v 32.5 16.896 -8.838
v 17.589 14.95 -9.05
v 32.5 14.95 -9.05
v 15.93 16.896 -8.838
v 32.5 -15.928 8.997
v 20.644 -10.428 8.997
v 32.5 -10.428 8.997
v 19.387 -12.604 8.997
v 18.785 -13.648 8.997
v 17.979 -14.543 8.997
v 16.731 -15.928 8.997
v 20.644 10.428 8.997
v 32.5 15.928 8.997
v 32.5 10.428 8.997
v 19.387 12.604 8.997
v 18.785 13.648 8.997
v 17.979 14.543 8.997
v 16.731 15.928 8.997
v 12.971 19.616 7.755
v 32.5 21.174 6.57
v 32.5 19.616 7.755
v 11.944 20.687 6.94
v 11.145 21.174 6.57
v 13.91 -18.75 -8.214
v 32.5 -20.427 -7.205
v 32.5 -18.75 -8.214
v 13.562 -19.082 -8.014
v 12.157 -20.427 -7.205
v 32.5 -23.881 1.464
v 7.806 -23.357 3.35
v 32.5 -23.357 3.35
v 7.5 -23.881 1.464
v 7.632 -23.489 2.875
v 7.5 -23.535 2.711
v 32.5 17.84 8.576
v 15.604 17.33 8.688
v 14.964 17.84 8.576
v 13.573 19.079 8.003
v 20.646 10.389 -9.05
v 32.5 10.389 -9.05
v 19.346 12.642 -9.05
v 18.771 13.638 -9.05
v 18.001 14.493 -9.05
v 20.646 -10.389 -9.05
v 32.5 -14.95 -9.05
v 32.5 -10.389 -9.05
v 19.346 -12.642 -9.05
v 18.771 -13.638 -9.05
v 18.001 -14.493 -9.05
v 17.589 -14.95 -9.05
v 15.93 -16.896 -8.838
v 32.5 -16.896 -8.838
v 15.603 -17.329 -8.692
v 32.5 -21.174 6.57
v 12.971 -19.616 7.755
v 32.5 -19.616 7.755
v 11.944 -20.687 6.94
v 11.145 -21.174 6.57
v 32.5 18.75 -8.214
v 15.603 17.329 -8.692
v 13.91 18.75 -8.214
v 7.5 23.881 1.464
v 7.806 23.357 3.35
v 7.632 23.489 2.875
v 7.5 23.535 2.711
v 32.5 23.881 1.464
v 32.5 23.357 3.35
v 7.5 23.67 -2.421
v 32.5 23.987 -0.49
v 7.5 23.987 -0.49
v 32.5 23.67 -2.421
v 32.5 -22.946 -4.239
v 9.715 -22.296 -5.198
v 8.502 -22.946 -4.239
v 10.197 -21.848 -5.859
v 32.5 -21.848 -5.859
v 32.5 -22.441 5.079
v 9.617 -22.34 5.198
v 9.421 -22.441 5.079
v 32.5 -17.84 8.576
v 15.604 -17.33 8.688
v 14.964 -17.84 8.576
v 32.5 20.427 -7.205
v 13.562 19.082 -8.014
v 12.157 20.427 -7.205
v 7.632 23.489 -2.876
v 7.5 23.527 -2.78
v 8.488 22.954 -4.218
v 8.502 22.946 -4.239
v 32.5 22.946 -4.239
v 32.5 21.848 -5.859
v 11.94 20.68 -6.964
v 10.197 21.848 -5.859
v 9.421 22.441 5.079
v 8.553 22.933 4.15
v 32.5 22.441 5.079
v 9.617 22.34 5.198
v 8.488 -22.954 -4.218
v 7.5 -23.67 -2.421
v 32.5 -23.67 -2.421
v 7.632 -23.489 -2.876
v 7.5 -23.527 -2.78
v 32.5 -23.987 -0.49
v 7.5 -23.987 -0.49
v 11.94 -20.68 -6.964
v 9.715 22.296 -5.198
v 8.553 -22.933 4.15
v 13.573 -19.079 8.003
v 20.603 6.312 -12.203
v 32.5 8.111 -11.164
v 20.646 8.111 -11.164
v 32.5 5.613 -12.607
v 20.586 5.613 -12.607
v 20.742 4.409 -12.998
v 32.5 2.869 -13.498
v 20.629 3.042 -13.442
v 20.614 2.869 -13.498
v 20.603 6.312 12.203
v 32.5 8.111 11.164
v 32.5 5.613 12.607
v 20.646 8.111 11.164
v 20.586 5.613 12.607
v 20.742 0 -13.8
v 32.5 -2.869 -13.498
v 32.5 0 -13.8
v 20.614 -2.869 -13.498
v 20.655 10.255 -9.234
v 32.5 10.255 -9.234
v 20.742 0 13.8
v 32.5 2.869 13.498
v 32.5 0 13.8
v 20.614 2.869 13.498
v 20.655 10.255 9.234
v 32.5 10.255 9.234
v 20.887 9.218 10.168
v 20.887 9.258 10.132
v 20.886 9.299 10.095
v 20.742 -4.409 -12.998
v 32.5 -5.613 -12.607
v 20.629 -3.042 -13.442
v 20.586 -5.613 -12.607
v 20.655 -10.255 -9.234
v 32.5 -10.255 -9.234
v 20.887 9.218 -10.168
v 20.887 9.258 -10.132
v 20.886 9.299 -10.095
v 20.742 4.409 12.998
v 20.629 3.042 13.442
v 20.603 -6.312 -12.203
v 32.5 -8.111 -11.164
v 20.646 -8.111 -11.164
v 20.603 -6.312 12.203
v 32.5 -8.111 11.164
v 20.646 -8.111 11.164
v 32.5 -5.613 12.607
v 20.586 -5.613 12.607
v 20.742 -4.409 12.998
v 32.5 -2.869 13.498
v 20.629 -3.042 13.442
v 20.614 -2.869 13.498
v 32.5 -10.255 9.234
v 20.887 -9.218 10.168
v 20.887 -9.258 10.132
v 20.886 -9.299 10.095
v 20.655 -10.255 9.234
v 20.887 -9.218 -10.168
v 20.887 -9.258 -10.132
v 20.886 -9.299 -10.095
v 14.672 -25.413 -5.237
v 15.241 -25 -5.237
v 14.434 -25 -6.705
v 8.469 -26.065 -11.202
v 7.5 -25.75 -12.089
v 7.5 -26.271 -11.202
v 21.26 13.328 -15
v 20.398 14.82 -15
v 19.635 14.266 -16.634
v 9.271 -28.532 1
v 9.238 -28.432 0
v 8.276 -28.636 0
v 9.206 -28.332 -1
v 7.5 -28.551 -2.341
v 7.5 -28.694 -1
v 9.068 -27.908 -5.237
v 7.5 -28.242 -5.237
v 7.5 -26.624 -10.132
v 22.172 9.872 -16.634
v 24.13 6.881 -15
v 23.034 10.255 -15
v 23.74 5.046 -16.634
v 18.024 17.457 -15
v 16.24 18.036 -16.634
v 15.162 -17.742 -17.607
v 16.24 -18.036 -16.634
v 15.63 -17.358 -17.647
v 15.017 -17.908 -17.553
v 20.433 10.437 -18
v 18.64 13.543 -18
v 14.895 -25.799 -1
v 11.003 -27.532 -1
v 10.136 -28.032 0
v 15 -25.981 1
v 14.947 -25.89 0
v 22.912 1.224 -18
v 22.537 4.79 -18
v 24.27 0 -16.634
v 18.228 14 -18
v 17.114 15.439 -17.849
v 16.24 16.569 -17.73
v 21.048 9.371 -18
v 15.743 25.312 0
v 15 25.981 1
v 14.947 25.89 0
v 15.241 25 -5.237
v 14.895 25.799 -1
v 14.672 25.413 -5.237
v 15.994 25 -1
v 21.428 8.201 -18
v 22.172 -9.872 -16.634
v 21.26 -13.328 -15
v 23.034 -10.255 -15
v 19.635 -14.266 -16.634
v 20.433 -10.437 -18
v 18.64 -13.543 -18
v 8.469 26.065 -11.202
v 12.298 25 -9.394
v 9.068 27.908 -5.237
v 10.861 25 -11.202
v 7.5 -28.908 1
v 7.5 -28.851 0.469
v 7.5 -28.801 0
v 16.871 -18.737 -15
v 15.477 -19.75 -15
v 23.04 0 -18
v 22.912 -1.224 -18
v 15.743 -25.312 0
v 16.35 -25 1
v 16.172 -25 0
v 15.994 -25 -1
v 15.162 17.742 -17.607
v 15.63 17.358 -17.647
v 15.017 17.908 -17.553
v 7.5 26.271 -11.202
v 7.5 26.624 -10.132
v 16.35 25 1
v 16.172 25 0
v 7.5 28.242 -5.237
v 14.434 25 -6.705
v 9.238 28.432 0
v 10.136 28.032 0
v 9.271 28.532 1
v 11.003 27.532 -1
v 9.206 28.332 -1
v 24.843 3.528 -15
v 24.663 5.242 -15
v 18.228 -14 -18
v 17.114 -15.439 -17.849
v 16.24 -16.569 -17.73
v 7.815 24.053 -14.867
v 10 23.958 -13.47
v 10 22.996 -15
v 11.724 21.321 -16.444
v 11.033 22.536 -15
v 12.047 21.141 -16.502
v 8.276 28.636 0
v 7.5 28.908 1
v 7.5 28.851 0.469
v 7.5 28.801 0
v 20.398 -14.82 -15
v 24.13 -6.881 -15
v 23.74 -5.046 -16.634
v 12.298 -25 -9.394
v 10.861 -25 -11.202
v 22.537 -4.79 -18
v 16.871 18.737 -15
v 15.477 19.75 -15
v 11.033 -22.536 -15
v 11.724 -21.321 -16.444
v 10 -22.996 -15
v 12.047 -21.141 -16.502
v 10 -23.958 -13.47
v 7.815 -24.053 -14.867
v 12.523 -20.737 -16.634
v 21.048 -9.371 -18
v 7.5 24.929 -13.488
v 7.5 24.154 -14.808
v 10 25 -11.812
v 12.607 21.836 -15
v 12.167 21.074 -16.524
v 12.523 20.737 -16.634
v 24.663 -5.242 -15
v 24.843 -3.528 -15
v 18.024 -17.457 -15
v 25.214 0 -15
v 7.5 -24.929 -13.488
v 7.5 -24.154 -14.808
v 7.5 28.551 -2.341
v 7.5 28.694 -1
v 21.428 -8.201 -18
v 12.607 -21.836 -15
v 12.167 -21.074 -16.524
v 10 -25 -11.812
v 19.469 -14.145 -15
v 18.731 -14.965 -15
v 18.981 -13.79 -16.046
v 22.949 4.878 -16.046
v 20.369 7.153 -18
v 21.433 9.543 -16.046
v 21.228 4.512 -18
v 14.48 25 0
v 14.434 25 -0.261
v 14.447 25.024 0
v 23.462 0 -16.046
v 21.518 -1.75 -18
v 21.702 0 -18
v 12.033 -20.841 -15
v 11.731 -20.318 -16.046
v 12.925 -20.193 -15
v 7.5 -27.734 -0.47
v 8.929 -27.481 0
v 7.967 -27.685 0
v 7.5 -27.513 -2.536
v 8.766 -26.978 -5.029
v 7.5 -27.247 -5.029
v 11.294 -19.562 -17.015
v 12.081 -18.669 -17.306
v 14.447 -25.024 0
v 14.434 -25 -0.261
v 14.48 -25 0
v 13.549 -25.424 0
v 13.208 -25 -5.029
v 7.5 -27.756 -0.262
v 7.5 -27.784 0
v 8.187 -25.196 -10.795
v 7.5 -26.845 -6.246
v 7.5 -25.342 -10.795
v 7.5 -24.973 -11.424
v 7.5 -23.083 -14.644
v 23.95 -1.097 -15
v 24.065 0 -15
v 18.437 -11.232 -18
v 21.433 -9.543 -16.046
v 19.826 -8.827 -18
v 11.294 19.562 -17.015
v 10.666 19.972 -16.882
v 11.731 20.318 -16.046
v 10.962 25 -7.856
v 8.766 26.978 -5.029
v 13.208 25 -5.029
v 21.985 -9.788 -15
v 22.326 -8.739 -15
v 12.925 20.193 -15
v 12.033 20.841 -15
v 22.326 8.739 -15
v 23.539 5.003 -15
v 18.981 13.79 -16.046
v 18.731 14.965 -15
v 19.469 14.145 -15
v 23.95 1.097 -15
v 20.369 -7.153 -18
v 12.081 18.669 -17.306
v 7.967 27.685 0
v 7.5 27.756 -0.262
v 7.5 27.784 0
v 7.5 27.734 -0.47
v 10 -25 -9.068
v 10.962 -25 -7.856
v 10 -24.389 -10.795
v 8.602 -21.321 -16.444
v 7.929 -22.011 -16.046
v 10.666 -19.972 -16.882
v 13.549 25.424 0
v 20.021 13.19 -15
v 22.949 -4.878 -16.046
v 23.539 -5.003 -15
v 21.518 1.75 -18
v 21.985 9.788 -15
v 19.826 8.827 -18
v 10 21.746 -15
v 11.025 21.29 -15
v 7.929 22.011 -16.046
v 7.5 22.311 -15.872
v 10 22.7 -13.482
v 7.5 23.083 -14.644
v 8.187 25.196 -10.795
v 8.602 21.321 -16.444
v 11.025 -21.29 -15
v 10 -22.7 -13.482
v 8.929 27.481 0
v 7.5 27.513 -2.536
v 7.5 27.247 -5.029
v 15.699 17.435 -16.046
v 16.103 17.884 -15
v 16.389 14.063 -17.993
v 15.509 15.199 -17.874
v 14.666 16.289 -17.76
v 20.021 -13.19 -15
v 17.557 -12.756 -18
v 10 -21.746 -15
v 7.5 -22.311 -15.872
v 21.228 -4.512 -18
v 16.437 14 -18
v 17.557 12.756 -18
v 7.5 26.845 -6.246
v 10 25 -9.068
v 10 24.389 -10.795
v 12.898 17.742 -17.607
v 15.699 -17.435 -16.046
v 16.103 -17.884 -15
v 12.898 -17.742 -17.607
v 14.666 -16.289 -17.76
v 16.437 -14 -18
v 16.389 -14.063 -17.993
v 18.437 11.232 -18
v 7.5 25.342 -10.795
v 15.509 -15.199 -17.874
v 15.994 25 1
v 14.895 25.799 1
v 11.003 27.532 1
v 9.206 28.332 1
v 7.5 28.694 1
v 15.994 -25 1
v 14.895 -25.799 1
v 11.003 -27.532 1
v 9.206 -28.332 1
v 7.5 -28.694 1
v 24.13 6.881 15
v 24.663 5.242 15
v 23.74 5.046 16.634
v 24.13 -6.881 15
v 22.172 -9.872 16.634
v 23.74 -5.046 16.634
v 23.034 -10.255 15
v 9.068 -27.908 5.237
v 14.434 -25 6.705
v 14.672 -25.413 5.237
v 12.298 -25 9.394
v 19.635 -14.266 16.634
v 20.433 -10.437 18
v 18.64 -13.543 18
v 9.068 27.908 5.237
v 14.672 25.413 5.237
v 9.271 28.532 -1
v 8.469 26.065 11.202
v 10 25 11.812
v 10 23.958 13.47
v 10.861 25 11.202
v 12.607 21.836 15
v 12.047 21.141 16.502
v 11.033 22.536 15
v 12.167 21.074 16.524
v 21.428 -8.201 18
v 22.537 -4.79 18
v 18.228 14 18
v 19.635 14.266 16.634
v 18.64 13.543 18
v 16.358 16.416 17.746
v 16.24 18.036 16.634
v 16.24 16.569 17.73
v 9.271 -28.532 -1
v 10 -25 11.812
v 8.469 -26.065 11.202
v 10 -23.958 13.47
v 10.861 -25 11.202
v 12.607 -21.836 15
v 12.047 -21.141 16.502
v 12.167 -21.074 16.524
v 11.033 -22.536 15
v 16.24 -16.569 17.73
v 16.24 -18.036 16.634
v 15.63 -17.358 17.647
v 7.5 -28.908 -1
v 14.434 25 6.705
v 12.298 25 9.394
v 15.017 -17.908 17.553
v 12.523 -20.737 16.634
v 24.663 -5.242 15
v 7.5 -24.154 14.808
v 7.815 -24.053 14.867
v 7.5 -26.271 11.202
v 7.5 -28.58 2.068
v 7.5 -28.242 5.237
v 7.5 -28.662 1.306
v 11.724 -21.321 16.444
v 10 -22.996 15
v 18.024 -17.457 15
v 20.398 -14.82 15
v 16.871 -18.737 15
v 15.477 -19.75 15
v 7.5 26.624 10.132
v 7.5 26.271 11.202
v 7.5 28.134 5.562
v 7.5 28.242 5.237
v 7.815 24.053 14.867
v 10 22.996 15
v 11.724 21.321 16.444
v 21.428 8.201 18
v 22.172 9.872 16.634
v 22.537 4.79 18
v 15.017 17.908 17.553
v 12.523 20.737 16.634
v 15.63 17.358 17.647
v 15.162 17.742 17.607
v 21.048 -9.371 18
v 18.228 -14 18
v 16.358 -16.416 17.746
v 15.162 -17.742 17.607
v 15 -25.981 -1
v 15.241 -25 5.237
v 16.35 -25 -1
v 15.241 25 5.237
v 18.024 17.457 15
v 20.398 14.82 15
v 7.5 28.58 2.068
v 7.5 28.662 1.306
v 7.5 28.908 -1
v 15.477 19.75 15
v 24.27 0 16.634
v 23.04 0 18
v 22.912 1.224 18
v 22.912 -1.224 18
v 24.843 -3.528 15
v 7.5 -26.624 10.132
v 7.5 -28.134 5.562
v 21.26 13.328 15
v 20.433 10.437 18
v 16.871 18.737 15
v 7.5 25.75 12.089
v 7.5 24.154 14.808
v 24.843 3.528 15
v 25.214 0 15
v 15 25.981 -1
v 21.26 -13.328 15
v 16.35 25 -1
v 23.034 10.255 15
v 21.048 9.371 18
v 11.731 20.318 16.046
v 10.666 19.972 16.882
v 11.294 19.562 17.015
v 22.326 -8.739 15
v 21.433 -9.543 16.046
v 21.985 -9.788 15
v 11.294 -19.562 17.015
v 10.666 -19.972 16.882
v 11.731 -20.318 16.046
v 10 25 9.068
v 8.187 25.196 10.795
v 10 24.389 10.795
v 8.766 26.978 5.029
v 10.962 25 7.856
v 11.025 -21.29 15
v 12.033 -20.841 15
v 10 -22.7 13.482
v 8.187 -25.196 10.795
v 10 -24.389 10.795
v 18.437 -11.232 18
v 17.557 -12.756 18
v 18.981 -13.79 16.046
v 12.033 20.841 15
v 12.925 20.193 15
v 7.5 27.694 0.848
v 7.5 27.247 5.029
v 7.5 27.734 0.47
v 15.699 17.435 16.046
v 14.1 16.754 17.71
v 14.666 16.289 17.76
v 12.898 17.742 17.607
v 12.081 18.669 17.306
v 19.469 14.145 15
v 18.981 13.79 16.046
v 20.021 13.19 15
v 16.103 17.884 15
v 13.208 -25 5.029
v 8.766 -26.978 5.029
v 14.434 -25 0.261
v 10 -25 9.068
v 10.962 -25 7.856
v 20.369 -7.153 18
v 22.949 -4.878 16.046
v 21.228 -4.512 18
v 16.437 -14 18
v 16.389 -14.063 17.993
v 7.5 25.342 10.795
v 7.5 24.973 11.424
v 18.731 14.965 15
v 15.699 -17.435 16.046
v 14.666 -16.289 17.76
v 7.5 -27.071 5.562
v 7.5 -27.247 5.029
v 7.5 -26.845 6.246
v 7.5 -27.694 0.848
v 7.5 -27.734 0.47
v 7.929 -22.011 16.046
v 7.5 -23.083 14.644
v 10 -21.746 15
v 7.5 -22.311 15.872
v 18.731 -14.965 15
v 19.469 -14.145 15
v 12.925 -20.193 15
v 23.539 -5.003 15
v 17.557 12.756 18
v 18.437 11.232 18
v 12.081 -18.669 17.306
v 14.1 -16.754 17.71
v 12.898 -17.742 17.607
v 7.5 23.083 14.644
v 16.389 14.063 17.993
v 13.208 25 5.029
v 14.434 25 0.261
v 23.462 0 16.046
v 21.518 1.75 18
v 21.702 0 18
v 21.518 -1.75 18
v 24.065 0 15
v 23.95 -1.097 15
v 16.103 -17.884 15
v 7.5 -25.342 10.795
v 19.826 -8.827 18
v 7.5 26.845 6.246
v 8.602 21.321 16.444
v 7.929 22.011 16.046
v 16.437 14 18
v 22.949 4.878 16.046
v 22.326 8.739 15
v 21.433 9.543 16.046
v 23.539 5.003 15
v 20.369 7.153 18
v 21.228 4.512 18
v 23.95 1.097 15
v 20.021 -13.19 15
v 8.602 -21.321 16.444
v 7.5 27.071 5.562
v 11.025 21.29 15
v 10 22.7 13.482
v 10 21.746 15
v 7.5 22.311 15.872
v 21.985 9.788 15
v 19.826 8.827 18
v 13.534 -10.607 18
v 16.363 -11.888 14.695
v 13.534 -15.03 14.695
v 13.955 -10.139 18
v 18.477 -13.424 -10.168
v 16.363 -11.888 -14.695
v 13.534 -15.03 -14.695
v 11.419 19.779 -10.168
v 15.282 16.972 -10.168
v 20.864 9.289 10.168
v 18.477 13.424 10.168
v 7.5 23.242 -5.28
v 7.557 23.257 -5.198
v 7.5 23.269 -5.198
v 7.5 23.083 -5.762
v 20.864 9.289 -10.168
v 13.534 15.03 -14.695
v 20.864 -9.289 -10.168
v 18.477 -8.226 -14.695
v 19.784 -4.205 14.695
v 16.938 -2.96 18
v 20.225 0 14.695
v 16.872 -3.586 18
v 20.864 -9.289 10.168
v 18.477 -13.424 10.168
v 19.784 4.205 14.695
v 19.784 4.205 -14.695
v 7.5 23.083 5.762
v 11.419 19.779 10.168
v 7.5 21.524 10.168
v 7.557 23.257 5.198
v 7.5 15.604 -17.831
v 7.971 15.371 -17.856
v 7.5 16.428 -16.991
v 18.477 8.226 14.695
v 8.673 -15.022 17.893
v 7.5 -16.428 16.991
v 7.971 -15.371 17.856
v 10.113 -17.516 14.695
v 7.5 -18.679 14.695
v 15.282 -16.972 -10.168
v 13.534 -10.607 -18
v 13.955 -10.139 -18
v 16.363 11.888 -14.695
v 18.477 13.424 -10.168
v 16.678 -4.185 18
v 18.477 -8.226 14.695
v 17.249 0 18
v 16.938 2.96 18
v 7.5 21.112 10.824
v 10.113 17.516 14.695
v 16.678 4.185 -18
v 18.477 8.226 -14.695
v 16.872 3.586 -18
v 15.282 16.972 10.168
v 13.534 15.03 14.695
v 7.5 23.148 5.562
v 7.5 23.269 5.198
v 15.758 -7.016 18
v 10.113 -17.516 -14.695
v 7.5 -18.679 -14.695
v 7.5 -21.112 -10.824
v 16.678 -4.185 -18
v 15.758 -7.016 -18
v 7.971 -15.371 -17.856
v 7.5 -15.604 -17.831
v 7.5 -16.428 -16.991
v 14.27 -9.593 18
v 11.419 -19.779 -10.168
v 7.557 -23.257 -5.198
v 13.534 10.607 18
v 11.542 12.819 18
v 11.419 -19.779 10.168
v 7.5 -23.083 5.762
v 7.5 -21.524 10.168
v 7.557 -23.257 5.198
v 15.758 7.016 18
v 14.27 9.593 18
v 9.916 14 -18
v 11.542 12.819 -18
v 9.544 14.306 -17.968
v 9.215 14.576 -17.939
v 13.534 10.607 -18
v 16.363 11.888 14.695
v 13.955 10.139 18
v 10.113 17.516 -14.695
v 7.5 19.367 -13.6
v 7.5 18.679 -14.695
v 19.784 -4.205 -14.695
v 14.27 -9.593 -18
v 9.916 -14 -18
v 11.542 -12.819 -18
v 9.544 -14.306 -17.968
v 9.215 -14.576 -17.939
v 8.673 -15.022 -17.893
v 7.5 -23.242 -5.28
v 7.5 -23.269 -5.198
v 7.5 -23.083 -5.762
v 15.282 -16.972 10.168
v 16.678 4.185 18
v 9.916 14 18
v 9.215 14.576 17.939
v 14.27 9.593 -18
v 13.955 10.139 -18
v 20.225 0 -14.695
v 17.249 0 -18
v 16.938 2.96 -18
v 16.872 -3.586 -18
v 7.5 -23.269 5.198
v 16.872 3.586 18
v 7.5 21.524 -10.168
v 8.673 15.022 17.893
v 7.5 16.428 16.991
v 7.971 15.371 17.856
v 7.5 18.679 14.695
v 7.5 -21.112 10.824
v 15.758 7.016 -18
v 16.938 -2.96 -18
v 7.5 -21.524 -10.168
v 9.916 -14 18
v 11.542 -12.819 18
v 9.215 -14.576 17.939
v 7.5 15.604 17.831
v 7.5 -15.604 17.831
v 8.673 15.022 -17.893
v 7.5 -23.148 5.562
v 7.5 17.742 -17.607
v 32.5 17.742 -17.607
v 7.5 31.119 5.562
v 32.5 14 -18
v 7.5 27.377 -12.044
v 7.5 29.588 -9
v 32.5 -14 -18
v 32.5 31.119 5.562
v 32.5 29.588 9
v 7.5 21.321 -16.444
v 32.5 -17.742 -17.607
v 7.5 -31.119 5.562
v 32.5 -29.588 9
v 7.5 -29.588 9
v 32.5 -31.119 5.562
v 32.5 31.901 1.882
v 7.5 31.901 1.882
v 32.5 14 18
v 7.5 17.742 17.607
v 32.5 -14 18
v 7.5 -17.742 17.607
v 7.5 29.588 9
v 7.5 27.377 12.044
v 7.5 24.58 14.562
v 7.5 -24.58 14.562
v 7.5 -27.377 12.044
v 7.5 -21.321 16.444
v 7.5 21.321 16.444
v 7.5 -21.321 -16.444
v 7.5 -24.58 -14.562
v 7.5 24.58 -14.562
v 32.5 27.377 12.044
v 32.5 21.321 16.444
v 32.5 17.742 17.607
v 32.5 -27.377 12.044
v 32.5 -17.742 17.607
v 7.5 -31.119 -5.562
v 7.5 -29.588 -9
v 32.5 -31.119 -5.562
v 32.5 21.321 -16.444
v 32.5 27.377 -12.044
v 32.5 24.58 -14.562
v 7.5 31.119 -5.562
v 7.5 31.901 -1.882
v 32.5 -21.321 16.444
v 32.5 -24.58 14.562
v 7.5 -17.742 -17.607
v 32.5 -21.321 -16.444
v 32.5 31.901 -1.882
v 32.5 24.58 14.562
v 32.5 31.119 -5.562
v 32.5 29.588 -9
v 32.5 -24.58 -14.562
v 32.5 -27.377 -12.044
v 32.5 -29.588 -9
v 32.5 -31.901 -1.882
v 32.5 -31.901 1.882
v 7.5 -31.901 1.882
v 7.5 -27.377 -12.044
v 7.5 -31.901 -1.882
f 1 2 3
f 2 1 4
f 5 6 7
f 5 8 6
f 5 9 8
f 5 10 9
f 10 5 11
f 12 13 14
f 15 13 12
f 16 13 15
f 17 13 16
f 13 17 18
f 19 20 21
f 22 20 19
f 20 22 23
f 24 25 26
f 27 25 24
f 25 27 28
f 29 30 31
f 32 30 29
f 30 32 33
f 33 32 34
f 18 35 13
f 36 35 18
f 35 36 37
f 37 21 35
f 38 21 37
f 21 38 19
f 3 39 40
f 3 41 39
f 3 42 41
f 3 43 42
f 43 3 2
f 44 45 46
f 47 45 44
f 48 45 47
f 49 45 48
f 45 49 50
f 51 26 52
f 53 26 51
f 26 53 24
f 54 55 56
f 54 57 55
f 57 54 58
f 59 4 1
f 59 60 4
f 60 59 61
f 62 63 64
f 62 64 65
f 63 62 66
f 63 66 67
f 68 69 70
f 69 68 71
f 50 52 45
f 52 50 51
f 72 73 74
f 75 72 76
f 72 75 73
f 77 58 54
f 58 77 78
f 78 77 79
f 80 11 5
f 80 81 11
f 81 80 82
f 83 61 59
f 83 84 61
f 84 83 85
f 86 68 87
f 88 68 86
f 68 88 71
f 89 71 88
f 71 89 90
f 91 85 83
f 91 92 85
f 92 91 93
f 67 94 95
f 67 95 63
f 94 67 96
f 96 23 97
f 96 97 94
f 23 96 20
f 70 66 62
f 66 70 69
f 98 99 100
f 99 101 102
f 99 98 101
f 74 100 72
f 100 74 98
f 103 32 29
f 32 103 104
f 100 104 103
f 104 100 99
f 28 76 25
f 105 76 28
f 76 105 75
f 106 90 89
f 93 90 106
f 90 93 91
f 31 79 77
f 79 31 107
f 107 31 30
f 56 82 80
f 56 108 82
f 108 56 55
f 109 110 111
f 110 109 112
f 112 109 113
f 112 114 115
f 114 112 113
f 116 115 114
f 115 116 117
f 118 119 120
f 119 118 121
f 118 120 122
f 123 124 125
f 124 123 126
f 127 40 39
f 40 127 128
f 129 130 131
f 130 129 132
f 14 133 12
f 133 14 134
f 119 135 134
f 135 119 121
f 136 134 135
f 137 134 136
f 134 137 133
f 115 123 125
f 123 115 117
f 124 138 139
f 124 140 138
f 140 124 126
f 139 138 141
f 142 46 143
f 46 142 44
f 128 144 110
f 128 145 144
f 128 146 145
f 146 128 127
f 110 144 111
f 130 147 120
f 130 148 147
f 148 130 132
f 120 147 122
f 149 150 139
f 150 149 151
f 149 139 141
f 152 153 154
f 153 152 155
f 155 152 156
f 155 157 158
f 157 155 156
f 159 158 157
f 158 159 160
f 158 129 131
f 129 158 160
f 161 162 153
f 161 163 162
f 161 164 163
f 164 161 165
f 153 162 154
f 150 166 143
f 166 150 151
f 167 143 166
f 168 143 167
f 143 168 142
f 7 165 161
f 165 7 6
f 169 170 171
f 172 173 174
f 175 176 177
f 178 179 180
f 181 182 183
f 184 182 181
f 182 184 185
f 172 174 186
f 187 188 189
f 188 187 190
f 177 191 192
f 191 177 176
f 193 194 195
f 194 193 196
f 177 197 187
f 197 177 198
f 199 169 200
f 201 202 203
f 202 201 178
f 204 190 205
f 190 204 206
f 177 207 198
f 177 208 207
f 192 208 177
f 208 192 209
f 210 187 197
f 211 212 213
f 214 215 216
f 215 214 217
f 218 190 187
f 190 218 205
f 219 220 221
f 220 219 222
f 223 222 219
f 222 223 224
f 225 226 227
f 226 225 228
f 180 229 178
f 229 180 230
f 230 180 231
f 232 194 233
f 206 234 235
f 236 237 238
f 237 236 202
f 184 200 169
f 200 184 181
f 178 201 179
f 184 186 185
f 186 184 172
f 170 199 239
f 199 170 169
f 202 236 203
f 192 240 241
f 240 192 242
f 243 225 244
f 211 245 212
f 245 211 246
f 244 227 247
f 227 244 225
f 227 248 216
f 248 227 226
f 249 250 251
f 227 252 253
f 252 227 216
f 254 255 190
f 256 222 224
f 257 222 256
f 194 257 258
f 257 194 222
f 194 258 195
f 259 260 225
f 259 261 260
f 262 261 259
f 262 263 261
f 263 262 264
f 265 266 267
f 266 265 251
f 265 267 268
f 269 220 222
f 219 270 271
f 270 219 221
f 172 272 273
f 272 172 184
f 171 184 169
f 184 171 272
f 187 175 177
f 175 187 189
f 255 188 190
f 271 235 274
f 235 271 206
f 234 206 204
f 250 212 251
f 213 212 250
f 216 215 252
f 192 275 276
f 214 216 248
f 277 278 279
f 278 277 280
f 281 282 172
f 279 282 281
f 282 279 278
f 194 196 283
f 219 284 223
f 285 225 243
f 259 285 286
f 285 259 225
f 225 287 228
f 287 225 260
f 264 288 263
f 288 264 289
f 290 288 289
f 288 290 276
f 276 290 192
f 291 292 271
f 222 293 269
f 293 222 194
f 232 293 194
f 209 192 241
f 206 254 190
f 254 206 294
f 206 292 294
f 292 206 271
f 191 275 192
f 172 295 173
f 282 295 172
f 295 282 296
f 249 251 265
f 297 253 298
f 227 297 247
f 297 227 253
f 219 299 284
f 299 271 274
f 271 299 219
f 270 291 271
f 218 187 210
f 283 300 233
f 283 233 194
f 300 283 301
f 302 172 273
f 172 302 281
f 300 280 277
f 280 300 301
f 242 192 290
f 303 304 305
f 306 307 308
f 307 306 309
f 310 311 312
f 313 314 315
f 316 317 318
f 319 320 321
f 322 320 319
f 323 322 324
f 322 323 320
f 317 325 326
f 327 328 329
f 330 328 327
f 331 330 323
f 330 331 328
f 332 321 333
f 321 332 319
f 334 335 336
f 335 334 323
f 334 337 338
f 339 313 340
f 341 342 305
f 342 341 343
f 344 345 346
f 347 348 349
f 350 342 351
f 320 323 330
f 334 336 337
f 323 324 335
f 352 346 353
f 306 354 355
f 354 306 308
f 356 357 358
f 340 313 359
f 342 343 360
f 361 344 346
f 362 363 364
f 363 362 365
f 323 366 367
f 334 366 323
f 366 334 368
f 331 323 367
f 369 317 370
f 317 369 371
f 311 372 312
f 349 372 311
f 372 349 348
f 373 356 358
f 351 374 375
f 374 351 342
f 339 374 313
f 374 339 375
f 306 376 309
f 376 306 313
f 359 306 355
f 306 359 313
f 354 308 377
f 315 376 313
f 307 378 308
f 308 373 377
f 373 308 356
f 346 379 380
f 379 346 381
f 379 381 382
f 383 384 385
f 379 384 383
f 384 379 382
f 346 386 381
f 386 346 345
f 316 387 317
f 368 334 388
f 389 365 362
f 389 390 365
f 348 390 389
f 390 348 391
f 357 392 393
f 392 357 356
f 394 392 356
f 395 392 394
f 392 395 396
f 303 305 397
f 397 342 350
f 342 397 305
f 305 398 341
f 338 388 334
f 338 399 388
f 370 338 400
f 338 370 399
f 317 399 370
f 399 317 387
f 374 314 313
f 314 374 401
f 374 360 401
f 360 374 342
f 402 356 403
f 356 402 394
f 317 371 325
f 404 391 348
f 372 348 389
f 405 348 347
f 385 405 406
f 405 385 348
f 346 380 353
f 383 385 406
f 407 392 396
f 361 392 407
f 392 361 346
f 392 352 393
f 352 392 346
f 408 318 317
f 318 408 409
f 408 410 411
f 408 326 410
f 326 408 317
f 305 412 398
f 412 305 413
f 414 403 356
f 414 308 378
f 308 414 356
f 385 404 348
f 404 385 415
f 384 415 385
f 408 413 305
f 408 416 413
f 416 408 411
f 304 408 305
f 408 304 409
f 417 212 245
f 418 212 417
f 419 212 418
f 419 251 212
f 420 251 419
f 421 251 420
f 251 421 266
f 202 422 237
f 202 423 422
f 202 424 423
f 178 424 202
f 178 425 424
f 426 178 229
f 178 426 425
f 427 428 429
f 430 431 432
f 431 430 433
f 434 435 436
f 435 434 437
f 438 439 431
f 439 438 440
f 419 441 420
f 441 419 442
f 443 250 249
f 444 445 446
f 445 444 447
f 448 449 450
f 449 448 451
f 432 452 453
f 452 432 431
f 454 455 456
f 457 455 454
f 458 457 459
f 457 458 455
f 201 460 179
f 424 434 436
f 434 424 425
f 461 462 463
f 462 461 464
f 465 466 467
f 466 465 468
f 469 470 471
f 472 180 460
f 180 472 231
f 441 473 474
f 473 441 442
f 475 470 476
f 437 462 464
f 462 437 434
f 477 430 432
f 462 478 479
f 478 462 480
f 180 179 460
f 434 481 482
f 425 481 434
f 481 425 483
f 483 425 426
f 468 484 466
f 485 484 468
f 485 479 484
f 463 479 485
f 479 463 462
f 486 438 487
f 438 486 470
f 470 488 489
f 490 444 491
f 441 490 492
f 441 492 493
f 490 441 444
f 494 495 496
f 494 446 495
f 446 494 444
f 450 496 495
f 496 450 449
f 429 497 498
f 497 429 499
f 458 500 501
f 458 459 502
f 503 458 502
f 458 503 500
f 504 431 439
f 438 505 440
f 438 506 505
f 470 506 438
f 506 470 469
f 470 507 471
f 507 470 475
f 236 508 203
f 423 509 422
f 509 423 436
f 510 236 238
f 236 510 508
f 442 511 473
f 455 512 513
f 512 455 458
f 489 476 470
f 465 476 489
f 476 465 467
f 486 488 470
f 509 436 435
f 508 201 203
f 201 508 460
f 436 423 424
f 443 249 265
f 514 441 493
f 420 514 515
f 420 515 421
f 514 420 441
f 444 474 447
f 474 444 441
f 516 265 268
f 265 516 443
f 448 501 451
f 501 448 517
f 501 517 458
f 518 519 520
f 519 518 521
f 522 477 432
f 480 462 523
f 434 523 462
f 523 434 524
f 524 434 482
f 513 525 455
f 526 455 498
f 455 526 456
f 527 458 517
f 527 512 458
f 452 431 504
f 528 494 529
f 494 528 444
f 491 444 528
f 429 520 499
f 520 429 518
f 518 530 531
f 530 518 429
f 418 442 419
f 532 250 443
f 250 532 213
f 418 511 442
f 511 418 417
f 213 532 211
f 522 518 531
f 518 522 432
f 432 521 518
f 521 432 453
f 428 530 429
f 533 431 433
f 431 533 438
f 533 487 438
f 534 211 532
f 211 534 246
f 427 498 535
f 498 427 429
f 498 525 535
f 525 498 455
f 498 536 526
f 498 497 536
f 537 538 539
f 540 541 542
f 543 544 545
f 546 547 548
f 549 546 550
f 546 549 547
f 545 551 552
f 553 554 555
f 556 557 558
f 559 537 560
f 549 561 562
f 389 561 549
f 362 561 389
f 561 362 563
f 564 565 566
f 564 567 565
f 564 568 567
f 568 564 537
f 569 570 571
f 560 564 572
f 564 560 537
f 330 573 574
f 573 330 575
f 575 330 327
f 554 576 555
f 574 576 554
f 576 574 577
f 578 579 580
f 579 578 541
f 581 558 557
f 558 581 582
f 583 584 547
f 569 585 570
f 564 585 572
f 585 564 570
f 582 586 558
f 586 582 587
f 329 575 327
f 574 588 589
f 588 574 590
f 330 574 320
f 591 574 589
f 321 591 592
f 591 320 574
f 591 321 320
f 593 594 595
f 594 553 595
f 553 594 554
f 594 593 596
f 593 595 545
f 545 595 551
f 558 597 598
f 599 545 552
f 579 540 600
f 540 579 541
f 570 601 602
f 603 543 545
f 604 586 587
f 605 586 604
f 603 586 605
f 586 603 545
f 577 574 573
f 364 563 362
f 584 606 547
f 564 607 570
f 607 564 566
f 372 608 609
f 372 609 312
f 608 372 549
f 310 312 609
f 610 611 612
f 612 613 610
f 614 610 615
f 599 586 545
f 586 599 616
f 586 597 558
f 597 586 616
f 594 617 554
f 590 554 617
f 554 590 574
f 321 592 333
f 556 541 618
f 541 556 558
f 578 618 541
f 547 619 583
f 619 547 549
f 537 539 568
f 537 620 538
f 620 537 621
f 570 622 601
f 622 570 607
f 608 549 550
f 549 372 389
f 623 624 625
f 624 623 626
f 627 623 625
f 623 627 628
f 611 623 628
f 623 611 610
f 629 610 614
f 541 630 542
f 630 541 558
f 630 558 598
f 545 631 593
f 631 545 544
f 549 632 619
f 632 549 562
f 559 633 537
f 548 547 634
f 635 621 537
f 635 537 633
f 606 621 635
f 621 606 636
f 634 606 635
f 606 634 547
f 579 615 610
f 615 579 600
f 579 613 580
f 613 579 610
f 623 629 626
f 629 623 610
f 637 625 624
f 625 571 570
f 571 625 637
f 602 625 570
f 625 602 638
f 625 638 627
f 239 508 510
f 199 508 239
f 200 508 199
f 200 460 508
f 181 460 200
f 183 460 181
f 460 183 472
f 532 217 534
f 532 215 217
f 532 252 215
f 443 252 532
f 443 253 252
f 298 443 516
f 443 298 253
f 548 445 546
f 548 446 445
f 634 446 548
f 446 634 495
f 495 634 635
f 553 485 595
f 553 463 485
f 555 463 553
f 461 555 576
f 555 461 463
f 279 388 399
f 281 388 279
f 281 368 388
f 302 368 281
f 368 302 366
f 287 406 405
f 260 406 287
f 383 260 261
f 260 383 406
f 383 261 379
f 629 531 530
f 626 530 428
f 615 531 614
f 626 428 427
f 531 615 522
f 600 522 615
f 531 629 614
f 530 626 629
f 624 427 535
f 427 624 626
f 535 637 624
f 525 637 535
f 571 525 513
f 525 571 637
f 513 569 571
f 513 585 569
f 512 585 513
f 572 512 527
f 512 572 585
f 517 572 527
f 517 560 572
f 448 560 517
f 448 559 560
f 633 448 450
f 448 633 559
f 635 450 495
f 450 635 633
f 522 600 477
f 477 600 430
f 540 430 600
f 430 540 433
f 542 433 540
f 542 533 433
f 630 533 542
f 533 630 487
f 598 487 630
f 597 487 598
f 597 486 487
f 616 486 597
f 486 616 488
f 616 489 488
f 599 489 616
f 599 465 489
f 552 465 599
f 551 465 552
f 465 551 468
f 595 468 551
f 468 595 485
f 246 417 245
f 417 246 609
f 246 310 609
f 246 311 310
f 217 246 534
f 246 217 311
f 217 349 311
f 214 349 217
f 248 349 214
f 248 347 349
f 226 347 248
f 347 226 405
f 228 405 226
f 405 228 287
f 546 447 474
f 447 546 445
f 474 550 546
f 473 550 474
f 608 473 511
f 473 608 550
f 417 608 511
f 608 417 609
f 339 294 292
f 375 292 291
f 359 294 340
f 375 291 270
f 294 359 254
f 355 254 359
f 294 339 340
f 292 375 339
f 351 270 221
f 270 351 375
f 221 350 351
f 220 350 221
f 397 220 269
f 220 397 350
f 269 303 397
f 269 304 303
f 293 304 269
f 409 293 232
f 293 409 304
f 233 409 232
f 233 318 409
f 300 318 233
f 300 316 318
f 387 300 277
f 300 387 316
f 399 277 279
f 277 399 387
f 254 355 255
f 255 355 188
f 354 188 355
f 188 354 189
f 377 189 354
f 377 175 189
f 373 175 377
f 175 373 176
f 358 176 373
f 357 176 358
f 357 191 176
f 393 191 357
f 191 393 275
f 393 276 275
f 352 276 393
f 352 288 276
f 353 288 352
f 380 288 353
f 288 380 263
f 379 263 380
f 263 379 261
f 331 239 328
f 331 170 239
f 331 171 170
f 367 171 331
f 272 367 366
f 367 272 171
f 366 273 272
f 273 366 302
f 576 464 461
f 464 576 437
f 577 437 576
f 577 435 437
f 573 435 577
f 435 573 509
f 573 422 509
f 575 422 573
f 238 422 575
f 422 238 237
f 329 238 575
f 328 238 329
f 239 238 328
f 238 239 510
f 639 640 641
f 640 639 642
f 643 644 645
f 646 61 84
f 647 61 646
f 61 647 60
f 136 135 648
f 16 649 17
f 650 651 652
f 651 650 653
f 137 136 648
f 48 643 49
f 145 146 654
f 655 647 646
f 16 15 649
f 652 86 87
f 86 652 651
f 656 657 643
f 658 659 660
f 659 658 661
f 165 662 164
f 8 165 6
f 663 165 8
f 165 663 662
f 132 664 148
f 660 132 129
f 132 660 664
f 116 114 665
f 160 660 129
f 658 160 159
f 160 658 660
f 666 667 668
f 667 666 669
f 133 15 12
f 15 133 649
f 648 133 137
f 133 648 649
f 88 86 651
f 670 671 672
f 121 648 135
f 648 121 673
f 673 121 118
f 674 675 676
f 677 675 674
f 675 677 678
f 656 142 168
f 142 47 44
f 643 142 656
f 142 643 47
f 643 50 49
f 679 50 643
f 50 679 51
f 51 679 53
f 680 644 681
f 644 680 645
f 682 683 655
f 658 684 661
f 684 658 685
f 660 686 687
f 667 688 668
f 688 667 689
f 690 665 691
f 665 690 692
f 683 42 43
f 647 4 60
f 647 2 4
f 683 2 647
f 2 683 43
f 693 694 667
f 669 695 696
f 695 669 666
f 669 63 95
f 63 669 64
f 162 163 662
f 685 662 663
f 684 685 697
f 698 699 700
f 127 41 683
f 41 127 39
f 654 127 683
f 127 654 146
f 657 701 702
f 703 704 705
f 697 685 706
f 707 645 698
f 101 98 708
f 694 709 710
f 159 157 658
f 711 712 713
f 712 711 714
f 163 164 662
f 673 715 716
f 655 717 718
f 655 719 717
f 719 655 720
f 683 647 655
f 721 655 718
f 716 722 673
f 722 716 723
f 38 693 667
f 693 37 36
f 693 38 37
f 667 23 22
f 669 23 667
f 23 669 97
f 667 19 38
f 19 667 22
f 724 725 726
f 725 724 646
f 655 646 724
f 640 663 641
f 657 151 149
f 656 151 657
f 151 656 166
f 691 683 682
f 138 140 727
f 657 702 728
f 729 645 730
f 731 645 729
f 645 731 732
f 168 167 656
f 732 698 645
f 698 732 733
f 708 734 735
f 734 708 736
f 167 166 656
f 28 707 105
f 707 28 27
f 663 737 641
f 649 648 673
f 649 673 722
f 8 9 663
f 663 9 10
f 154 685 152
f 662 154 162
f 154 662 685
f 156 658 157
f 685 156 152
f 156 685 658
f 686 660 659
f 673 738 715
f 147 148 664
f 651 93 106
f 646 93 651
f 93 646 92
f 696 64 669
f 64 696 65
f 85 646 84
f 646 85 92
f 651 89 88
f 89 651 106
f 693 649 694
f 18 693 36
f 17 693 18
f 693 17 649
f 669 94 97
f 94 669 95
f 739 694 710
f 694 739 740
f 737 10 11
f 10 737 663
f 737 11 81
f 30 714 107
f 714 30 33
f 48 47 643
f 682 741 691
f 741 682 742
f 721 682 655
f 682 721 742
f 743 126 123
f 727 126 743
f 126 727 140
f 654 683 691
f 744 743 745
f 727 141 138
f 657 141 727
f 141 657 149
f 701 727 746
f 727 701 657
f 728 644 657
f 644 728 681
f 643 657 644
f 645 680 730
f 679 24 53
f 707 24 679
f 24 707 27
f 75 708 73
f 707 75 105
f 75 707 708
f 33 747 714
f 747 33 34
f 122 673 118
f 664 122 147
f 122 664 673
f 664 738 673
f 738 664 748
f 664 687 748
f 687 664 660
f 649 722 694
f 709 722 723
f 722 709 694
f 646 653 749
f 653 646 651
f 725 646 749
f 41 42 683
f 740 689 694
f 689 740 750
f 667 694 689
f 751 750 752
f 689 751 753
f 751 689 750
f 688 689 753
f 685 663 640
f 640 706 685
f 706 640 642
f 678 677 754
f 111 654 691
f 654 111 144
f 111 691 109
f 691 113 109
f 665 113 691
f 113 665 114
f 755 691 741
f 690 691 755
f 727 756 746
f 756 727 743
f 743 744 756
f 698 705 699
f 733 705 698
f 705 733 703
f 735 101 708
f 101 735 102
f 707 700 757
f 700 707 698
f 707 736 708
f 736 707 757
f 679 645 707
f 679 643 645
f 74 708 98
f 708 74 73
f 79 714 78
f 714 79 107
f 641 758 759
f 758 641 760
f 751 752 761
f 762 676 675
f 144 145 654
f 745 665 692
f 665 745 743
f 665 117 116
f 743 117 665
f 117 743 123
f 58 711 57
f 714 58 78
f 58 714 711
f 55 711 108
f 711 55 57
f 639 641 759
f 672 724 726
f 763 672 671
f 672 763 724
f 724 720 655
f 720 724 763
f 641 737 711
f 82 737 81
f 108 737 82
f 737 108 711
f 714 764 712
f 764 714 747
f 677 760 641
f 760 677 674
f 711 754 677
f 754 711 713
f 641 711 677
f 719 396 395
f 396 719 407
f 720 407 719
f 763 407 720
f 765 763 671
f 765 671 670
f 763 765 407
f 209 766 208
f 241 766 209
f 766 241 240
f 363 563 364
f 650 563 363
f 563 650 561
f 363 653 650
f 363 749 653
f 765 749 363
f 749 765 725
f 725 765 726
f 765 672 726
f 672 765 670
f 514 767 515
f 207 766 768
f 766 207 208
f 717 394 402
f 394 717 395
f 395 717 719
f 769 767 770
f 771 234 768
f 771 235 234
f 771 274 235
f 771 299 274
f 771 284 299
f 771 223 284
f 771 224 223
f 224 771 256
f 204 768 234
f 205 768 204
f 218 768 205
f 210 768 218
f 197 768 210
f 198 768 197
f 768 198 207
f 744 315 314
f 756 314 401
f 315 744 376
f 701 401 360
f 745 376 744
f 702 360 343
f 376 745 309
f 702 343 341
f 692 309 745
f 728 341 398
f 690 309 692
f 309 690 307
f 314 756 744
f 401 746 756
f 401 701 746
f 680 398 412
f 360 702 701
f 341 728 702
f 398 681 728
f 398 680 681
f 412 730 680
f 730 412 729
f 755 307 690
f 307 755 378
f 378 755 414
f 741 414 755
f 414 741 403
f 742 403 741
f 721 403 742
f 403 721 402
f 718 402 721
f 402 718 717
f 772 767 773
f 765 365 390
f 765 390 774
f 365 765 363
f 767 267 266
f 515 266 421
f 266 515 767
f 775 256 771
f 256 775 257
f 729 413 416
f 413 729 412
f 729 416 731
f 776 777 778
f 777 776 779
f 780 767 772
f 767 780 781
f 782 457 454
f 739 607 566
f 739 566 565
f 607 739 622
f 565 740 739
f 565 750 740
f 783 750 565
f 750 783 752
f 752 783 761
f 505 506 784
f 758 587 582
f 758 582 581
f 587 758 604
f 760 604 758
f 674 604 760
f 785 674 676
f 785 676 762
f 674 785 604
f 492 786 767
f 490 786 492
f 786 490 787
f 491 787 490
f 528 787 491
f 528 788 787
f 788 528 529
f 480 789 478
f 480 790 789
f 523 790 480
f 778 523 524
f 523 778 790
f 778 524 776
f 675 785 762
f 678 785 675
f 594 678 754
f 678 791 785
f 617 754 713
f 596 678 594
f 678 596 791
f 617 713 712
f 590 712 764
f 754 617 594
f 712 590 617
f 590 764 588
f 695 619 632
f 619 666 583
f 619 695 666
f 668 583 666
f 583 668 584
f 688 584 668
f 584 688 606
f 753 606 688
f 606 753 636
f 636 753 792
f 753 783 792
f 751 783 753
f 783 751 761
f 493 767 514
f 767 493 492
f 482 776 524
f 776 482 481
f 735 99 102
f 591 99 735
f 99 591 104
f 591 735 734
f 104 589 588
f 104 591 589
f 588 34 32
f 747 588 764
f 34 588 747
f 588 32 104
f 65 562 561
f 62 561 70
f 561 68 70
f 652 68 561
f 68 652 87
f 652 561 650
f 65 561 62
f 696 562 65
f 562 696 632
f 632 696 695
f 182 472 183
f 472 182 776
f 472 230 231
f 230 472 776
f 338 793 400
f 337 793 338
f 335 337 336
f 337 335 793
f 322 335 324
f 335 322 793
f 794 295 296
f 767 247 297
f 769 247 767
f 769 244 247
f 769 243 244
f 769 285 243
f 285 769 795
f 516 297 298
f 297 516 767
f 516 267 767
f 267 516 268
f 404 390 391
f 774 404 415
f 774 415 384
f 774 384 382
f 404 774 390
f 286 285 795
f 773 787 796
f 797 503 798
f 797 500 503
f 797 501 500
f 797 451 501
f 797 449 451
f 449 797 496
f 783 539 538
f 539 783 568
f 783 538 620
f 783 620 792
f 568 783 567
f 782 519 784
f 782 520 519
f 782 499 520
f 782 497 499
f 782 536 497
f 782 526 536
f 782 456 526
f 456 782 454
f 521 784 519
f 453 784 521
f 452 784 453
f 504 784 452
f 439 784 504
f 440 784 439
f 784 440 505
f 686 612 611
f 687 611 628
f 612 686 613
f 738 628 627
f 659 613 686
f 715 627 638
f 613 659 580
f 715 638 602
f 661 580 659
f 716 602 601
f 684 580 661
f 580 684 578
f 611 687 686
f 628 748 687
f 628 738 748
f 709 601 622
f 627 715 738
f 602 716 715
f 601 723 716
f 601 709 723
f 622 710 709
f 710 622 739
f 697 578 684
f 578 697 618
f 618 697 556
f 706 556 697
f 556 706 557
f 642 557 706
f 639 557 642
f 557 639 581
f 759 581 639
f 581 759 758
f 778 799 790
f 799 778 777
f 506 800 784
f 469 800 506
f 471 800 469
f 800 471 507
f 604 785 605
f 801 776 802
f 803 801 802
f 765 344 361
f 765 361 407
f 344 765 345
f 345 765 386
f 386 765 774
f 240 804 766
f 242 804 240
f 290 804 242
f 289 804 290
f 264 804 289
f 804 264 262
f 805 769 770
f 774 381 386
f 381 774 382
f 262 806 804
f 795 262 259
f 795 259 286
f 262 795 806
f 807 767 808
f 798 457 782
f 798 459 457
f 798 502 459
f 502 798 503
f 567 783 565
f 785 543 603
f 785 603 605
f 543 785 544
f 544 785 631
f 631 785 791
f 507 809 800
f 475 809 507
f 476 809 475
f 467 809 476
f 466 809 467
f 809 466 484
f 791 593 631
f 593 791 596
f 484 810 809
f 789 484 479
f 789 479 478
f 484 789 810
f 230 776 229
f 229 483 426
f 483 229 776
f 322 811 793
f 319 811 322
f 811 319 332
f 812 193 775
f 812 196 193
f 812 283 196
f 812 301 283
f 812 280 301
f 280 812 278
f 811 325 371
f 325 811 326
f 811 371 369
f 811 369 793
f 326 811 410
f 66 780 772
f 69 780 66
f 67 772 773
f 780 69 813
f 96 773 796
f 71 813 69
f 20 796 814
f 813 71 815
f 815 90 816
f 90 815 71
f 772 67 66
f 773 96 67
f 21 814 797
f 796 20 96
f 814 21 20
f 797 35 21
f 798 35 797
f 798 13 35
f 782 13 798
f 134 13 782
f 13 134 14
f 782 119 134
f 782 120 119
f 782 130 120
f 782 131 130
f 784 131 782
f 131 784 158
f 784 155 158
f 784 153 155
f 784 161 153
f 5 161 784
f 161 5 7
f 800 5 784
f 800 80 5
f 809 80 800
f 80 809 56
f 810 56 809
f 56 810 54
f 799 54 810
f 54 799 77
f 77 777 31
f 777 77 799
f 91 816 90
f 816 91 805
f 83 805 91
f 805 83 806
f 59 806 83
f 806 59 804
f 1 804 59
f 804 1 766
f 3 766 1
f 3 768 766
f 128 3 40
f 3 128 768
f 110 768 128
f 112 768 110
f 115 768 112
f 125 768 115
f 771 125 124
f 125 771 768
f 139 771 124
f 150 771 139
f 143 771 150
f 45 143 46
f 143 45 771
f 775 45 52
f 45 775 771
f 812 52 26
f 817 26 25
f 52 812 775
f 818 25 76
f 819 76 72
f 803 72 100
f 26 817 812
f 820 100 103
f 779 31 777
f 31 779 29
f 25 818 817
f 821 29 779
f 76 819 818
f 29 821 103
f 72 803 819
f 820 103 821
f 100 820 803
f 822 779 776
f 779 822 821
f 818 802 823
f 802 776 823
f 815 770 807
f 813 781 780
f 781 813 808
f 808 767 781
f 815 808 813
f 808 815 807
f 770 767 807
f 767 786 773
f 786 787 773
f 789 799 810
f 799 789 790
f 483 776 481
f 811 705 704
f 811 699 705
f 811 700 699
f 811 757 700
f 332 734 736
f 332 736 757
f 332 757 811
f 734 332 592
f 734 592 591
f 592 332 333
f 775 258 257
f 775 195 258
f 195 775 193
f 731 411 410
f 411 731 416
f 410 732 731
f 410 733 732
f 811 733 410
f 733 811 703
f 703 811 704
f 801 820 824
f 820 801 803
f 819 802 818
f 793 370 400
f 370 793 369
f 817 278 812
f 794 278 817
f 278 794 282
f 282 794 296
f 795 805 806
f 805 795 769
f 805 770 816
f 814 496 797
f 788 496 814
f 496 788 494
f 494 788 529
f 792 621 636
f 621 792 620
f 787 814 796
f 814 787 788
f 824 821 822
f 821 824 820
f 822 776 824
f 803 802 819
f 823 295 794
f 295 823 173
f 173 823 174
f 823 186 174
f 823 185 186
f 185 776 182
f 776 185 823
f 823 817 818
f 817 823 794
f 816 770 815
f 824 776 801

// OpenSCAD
module semisfera(r,spessore){
    difference(){
        difference(){
        sphere(r);
        sphere(r-spessore);
        }
    
        translate([0,0,r/2])cube([r*2,r*2,r],true);
    }
}



module sferamonca(r,spessore,spazio){
    translate([0,0,spazio])
    difference(){
    translate([0,0,spessore])semisfera(r,spessore);
    cube([r*2,r*2,spazio*2],true);
    }
}

module sfeschiacciata(r,spessore,schiaccio){
sferamonca(r,spessore,schiaccio);
rotate([0,180,0])sferamonca(r,spessore,schiaccio);
}

module onex(){
    hull(){
        r=9.05;
        l=24;
        translate([0,l-r])rotate([0,90,0])cylinder(114.56,r,r,true);
        translate([0,-(l-r)])rotate([0,90,0])cylinder(114.56,r,r,true);
    }   
    rotate([0,90,0])cylinder(114.56,13.8,13.8,true);
}


difference(){
    //translate([25,0,0])cube([30,80,30],true); //esterno squadrato
    translate([20,0,0])rotate([0,0,0]) hull() //esterno del pezzo finale
    {
       r=18;
        l=32;
        h=25;
        translate([0,l-r])rotate([0,90,0])cylinder(h,r,r,true);
        translate([0,-(l-r)])rotate([0,90,0])cylinder(h,r,r,true);
    }
    union(){
        sphere(25);
        difference(){
            sfeschiacciata(30,1,0);
            translate([25,0,0])cube([30,50,30],true);
        }
        translate([50,0,0])onex();
    }
}
